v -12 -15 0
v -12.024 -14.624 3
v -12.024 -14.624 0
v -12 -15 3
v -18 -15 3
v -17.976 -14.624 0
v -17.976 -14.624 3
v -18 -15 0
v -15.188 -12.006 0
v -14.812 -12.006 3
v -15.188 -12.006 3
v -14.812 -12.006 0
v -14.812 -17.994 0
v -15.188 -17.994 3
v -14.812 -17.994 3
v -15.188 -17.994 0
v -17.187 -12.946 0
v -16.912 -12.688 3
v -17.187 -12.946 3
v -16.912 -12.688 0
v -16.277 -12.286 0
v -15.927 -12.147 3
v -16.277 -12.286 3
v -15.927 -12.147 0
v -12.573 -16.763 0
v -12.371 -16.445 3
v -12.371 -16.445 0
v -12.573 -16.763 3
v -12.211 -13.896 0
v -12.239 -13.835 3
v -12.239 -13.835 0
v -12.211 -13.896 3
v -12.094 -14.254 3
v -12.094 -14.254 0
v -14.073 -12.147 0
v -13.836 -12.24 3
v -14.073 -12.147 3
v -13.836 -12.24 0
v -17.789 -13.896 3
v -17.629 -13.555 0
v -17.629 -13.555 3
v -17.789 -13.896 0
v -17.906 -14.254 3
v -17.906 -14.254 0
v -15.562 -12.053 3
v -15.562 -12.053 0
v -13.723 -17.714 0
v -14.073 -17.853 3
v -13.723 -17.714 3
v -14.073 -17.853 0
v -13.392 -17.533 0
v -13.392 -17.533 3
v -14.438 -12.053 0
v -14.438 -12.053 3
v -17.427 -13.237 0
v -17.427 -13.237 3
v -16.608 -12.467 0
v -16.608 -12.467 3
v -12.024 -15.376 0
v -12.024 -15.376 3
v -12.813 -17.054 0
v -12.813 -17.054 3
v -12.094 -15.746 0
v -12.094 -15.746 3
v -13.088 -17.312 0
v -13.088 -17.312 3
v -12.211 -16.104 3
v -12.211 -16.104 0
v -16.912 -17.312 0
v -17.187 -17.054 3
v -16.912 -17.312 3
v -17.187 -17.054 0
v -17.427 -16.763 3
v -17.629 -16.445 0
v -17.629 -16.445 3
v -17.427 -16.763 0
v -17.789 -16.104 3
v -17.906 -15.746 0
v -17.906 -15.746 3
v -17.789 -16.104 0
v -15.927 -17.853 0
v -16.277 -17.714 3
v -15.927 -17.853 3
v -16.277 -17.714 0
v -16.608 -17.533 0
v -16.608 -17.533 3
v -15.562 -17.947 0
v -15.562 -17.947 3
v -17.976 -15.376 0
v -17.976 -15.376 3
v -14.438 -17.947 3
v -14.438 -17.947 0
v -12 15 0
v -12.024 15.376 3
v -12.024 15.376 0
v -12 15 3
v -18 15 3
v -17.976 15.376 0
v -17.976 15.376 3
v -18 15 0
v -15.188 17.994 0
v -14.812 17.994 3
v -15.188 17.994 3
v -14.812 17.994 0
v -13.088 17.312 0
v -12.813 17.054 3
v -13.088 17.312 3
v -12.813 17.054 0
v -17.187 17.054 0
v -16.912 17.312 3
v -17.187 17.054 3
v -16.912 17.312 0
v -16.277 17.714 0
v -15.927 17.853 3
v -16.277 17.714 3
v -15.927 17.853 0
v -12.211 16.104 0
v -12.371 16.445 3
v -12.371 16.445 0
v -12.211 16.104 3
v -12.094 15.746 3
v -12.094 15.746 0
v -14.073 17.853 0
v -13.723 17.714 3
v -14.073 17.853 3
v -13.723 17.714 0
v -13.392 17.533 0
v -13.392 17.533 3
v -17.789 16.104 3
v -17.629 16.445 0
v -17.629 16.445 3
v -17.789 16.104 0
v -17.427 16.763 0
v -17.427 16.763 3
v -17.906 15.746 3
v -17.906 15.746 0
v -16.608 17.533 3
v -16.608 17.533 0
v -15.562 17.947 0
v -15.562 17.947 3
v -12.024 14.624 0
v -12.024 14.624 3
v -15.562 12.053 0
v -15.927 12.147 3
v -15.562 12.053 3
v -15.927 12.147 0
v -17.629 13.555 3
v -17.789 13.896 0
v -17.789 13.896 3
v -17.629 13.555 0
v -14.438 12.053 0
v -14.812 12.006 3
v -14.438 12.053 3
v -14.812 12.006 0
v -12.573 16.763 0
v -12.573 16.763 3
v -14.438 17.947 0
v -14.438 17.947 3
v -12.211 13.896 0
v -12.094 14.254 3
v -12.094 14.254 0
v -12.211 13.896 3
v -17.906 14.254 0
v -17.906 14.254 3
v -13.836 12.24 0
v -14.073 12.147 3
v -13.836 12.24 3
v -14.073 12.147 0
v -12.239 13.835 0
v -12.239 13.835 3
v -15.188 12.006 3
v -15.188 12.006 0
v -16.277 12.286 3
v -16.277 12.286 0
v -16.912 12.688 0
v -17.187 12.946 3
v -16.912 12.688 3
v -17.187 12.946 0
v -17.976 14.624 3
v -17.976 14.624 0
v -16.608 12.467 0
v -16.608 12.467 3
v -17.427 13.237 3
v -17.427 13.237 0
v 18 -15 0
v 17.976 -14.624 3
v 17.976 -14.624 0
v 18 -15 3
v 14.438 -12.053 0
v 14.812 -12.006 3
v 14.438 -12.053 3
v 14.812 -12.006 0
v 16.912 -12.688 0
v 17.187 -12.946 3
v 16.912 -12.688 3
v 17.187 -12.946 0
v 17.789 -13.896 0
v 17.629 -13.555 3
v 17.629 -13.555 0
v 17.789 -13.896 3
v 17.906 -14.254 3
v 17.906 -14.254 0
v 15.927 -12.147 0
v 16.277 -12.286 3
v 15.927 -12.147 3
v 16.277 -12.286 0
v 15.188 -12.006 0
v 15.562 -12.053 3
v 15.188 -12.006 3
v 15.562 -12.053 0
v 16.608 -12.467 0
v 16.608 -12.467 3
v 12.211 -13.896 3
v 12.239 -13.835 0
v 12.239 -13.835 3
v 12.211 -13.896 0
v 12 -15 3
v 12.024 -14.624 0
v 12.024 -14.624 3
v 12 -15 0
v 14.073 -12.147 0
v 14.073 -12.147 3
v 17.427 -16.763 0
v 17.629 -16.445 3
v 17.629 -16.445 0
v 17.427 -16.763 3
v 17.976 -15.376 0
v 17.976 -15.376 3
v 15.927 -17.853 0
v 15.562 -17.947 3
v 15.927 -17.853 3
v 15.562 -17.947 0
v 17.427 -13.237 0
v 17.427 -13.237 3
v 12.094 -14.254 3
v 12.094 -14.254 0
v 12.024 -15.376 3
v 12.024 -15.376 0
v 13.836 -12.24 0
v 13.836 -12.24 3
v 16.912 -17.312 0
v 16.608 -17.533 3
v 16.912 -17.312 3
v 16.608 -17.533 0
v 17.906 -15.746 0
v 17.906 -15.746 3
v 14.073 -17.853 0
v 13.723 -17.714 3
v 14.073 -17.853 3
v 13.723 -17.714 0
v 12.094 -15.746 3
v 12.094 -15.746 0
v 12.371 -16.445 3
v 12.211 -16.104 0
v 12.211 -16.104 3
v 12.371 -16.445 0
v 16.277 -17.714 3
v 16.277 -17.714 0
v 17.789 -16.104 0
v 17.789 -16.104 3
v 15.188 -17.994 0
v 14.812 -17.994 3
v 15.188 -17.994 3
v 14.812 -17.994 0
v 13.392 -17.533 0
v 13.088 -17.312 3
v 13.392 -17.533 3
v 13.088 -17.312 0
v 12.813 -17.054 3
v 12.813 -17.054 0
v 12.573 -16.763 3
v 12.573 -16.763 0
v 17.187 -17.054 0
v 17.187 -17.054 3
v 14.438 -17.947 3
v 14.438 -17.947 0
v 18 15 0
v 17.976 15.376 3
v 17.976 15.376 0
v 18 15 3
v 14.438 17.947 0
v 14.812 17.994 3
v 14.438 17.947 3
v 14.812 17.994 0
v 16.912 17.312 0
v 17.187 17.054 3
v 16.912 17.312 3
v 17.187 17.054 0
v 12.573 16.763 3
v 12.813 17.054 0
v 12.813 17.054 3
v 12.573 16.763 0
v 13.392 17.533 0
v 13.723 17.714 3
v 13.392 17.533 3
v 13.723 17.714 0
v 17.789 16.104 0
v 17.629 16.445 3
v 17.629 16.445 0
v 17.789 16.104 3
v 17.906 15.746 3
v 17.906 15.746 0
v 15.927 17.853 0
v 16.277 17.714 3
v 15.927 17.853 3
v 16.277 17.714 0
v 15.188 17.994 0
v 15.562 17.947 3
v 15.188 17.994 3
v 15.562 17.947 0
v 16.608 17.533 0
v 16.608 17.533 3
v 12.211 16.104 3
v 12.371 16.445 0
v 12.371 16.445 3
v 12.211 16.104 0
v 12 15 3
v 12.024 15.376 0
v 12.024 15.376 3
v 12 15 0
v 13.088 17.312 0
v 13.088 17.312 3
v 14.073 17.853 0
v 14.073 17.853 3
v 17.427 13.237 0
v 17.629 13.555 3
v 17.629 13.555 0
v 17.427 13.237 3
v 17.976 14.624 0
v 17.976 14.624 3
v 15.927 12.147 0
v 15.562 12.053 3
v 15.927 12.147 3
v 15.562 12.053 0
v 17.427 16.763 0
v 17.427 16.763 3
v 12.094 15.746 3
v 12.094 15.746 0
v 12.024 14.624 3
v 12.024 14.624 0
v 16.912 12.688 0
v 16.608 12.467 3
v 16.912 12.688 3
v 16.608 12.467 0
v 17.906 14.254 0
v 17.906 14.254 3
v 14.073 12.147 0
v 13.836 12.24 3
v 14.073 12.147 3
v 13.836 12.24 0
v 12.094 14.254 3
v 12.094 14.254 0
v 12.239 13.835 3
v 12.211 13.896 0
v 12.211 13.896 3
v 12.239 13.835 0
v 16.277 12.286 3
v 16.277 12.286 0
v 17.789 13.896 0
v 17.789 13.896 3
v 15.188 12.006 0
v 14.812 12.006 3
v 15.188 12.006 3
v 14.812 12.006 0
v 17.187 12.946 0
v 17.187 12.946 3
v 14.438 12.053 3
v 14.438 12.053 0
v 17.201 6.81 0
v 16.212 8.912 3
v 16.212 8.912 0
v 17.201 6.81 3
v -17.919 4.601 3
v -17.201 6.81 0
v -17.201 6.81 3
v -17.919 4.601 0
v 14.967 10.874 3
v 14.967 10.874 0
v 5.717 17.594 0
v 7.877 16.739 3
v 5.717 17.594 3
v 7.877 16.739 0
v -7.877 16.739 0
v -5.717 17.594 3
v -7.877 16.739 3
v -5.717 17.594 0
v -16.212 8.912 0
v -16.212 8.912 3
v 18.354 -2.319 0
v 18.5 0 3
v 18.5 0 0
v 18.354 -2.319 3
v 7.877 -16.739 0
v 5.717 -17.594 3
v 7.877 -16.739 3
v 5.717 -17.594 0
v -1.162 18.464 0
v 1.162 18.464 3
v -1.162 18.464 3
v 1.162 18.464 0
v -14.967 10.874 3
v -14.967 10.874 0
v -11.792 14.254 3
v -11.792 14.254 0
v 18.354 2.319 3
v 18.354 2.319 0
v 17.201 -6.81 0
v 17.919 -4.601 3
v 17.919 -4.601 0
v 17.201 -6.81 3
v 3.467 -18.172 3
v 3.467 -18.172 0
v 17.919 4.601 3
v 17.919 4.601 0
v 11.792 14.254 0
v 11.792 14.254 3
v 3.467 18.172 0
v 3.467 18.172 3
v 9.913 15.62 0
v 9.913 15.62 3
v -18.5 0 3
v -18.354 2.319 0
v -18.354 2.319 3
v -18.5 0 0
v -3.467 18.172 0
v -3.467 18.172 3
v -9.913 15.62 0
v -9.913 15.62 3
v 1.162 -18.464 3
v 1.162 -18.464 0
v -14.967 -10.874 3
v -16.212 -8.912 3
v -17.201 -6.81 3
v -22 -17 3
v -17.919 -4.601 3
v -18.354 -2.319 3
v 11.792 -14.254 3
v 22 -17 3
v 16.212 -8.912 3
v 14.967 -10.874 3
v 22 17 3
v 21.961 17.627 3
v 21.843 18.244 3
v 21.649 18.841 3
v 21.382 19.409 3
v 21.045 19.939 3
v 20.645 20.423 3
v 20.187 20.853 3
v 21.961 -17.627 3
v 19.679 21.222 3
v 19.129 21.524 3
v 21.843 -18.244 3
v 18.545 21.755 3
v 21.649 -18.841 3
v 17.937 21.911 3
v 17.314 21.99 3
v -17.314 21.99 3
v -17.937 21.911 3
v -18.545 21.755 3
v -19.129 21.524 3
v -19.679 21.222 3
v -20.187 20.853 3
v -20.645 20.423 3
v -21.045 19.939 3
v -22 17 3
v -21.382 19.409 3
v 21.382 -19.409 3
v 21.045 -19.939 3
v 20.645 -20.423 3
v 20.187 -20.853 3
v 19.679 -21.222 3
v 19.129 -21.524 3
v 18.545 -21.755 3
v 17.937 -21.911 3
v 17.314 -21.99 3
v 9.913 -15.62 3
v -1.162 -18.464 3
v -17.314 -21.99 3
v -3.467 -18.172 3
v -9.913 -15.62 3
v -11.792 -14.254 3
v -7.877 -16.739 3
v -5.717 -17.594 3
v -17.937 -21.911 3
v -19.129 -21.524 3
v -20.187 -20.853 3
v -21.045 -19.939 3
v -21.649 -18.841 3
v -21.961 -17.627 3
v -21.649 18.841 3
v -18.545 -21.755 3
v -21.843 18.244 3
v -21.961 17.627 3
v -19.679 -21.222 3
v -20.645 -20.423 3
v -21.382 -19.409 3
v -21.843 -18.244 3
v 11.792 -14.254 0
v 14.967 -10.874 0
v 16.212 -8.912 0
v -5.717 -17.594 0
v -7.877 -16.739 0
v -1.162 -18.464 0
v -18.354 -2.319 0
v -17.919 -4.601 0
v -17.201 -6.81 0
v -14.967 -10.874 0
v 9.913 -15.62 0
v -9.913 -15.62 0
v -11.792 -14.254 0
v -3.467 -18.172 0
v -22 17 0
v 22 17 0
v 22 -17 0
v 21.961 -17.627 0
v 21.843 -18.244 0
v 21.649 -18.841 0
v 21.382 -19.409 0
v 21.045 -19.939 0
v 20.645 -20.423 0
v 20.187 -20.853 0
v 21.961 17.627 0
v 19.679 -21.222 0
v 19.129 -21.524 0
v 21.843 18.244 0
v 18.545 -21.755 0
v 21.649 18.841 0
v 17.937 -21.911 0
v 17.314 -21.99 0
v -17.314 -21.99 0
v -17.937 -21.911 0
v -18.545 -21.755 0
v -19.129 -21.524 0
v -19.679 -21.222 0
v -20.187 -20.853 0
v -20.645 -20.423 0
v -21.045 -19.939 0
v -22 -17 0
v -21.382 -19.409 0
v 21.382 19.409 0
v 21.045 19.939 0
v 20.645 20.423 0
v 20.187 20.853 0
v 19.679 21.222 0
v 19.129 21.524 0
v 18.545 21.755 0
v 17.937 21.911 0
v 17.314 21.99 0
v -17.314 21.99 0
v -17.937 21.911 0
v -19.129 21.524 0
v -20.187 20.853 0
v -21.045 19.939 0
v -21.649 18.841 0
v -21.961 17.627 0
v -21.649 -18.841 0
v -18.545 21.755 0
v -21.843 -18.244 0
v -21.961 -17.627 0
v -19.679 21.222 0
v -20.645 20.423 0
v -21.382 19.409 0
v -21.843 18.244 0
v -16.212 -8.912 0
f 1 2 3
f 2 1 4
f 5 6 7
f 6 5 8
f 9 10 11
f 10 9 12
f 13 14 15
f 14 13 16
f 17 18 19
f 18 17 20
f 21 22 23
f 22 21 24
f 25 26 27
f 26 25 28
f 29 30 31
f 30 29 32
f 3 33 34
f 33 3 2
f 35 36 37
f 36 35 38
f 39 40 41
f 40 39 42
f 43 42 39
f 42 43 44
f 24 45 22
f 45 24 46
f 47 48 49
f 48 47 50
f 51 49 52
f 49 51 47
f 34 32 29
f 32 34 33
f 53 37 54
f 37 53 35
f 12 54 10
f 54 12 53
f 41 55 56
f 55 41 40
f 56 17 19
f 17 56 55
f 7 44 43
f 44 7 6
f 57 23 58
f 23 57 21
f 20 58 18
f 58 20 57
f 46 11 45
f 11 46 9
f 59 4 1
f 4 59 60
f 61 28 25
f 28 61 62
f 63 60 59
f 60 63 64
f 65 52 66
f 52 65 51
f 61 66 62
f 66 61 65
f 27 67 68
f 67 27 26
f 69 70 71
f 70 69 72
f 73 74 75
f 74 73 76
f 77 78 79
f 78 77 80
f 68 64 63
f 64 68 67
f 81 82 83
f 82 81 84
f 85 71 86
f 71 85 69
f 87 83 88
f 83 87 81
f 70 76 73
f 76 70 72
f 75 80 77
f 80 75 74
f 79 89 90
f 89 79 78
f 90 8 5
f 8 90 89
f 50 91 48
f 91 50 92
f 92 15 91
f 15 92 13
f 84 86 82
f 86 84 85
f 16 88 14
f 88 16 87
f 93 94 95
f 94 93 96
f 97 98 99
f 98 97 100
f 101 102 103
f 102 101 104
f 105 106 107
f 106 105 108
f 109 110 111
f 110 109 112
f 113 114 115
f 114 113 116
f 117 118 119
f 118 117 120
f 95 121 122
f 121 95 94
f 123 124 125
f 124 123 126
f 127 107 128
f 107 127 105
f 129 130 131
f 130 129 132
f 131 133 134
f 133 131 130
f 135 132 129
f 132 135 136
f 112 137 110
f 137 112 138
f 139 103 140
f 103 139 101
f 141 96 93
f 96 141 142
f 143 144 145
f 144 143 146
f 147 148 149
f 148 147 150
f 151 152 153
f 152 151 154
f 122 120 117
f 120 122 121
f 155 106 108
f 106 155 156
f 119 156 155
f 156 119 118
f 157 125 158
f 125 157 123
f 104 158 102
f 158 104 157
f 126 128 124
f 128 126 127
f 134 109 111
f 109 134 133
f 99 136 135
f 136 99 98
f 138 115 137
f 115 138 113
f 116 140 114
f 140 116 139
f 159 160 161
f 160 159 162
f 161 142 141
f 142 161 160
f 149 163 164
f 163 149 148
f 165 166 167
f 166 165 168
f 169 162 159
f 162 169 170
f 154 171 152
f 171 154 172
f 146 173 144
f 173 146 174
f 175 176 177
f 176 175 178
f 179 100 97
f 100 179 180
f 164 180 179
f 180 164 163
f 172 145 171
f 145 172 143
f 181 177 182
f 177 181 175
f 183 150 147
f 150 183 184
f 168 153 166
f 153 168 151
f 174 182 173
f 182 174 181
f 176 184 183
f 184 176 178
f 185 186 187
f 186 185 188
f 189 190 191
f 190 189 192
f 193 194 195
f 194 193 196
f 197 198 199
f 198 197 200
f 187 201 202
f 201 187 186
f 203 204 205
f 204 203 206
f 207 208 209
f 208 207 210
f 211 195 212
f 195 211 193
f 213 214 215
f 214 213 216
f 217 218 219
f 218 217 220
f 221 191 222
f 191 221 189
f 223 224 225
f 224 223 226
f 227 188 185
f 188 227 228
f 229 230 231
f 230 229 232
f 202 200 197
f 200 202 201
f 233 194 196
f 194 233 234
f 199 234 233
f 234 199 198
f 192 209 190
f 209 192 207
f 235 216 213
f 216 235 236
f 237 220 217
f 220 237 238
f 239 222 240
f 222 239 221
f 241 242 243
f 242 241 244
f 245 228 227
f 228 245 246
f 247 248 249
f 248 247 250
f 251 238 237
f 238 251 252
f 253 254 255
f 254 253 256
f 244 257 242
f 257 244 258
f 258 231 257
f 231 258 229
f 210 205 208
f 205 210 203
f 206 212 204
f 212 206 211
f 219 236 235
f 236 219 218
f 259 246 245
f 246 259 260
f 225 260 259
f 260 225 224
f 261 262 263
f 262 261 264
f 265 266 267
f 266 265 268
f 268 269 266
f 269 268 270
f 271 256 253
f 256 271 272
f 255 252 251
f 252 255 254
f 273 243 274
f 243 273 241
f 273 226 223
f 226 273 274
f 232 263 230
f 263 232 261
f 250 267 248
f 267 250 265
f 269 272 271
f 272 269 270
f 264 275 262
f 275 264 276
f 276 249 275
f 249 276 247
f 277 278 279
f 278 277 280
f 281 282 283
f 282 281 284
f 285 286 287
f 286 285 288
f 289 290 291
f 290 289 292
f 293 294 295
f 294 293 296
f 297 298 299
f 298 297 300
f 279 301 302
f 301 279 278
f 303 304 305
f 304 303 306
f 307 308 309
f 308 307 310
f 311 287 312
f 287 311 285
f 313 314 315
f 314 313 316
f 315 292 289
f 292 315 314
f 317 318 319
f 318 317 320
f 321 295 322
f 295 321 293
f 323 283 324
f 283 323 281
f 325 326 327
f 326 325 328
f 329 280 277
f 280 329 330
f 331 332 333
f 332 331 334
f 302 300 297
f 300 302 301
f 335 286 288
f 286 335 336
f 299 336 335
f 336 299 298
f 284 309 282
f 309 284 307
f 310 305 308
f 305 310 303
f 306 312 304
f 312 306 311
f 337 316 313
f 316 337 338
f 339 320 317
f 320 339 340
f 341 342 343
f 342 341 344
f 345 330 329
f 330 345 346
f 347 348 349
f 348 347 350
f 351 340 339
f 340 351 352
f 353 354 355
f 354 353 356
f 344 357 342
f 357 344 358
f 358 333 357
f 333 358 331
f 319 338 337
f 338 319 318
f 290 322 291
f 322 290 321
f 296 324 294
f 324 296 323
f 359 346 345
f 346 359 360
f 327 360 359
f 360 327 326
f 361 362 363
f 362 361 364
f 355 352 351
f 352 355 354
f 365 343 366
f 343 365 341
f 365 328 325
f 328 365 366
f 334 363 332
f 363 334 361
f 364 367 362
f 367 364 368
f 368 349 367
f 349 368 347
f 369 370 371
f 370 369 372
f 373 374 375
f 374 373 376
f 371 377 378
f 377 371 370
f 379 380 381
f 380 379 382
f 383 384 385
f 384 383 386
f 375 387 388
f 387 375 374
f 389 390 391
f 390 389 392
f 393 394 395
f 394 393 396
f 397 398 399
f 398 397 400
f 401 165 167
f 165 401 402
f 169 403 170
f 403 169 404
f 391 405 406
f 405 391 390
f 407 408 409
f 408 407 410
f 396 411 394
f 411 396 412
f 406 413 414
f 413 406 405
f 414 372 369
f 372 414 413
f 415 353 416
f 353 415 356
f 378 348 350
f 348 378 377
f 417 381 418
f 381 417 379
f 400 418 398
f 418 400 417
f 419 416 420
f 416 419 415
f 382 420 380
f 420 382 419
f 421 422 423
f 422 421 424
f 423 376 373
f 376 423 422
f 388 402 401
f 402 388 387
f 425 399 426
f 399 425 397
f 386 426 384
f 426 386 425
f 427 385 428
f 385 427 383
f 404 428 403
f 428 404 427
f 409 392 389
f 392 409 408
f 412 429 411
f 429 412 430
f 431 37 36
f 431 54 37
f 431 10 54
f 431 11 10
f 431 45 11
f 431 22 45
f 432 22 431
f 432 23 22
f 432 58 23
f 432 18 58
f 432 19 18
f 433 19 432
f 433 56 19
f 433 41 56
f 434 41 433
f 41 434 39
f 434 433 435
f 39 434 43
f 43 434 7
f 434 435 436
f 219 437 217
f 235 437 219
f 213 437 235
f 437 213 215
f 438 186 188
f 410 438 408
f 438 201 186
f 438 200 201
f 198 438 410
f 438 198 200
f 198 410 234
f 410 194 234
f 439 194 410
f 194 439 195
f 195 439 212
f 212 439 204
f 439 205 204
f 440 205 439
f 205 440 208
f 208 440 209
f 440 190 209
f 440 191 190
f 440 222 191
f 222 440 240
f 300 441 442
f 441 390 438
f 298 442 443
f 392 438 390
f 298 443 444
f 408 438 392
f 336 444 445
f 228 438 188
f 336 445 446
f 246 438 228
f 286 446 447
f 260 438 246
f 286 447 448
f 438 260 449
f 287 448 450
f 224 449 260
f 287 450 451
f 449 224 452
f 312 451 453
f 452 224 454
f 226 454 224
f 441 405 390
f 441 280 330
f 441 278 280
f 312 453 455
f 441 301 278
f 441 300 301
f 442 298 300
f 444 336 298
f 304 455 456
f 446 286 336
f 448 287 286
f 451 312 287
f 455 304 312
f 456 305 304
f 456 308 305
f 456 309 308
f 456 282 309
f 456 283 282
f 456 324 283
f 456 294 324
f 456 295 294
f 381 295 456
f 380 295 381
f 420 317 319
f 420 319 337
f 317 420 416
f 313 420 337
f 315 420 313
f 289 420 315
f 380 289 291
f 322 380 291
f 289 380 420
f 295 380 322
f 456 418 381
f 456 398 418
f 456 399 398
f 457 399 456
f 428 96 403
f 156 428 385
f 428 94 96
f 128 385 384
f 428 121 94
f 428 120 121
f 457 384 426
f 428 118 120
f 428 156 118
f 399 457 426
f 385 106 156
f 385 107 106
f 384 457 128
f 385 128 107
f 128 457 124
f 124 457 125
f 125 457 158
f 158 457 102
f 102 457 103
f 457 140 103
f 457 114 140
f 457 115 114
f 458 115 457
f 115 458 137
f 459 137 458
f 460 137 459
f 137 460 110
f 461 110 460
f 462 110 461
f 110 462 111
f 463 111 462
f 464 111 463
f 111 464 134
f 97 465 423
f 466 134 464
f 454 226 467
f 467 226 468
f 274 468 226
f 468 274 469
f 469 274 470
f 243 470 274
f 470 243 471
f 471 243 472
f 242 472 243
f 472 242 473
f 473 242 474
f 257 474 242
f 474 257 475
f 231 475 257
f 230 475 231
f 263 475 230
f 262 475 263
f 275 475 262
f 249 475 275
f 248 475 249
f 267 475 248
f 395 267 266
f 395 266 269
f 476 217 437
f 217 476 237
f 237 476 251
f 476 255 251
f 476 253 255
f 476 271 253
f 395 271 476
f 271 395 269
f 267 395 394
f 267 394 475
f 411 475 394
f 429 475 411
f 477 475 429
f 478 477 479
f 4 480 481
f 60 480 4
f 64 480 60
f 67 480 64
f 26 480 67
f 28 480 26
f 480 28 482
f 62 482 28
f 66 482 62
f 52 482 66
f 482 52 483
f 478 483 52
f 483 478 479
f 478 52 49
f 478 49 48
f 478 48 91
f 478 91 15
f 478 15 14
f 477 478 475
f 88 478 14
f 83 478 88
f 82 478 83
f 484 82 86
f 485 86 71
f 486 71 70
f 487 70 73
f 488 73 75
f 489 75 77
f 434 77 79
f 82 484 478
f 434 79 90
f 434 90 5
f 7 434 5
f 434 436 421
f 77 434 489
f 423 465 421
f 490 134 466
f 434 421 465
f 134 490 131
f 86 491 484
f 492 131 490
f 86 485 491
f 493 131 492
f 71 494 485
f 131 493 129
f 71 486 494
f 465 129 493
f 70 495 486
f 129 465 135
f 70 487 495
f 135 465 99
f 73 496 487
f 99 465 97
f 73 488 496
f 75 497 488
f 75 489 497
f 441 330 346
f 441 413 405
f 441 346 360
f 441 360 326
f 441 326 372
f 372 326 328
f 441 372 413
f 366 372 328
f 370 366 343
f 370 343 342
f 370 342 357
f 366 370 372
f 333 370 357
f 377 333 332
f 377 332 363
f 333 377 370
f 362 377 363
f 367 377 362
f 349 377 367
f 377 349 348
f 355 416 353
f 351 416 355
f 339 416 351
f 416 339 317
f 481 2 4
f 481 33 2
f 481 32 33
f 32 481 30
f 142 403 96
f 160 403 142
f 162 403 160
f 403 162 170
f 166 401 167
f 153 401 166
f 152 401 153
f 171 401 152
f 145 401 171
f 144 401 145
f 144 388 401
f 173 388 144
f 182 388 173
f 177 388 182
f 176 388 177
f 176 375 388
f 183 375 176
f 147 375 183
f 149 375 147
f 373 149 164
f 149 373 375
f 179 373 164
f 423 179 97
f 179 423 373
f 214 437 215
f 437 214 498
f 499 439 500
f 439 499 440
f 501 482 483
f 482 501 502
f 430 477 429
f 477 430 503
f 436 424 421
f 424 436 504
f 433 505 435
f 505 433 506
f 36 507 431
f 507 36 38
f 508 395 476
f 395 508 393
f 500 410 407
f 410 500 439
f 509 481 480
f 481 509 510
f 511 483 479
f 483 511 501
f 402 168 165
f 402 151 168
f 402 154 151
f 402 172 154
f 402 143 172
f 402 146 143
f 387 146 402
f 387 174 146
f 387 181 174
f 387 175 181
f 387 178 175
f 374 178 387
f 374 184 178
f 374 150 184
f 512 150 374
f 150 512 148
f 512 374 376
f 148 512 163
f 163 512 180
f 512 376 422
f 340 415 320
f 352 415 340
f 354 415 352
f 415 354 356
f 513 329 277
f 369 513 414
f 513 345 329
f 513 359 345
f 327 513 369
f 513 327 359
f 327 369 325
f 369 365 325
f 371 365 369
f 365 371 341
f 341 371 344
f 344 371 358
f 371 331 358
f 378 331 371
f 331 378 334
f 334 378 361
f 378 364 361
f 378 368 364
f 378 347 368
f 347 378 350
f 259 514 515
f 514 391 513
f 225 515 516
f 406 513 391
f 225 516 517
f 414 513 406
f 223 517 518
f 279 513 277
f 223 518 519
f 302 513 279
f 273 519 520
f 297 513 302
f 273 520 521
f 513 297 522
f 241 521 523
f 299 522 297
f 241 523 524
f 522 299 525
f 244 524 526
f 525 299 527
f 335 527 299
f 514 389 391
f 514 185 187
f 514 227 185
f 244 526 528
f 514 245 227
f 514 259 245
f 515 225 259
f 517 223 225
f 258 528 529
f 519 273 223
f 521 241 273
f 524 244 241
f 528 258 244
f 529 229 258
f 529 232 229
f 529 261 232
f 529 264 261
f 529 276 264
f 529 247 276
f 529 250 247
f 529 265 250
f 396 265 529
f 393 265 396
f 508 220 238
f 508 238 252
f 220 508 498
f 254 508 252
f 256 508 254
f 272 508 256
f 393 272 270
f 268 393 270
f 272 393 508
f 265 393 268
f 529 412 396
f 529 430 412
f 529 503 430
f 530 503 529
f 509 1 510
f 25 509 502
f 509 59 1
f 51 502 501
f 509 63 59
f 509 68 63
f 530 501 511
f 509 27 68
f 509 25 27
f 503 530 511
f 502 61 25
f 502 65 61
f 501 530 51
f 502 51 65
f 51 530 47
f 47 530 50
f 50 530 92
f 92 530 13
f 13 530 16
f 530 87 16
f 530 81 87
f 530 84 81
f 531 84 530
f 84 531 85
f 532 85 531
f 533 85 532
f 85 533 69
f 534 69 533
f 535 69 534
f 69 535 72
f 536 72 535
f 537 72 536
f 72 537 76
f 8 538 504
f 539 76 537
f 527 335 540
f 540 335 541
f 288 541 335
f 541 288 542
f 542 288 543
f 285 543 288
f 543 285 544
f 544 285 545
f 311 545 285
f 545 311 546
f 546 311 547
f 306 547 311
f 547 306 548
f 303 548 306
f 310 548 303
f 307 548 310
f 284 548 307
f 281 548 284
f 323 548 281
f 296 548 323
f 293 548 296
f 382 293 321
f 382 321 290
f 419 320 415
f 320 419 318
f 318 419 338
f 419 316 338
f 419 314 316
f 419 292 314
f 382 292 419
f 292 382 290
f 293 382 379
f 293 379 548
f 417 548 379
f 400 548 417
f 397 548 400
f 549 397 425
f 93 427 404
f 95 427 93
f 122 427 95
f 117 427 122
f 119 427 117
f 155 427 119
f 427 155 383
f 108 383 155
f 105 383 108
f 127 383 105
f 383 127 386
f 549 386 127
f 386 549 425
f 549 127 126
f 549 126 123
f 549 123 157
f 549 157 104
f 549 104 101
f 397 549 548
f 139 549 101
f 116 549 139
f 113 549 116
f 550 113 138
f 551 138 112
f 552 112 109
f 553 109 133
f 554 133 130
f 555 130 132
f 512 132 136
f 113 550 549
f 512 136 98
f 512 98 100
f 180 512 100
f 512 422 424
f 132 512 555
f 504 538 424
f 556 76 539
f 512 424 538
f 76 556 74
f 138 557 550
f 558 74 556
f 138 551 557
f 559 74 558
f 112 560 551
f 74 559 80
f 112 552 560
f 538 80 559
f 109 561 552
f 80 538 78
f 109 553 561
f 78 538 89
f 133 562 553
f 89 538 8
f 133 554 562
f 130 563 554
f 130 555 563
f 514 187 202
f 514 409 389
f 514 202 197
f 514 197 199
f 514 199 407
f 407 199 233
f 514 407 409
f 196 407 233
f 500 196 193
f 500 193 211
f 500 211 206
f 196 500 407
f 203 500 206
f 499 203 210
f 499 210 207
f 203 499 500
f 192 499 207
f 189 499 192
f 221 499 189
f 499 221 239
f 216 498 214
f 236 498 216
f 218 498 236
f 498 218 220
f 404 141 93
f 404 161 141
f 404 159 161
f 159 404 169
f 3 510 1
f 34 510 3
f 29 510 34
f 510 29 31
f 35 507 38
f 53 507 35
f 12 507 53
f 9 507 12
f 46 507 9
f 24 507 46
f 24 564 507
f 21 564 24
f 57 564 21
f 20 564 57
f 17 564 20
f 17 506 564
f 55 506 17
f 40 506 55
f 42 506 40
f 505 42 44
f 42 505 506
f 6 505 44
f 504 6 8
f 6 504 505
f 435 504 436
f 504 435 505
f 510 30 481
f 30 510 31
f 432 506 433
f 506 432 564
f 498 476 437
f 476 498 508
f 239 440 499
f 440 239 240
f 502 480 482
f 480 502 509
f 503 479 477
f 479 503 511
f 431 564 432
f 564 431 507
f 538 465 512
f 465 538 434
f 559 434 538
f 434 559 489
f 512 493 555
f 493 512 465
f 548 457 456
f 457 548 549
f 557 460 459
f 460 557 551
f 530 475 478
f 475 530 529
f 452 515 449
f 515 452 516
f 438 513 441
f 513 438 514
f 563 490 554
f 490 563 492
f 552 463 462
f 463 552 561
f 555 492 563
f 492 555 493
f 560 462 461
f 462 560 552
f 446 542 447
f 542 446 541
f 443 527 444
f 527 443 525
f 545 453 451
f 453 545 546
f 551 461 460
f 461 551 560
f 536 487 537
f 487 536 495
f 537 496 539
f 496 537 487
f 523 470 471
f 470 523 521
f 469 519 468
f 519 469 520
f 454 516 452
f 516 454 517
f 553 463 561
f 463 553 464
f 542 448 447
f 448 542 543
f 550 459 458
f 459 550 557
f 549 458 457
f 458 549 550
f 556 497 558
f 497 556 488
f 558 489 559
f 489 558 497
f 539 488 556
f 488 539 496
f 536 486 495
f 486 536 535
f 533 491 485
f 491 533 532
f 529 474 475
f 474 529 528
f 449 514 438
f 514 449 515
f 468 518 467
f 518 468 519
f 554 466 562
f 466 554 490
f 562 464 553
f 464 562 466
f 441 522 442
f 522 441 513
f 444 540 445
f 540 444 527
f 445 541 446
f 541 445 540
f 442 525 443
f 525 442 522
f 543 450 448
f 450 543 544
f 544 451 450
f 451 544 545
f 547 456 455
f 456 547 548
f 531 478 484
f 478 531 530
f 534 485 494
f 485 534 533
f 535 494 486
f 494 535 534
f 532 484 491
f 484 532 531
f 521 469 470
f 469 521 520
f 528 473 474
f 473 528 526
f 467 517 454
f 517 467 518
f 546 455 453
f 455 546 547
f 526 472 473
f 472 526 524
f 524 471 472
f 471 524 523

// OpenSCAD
$fn = 50;


difference() {
	union() {
		hull() {
			translate(v = [-17.0000000000, 17.0000000000, 0]) {
				cylinder(h = 3, r = 5);
			}
			translate(v = [17.0000000000, 17.0000000000, 0]) {
				cylinder(h = 3, r = 5);
			}
			translate(v = [-17.0000000000, -17.0000000000, 0]) {
				cylinder(h = 3, r = 5);
			}
			translate(v = [17.0000000000, -17.0000000000, 0]) {
				cylinder(h = 3, r = 5);
			}
		}
	}
	union() {
		#translate(v = [-15.0000000000, -15.0000000000, -100.0000000000]) {
			cylinder(h = 200, r = 3.0000000000);
		}
		#translate(v = [-15.0000000000, 15.0000000000, -100.0000000000]) {
			cylinder(h = 200, r = 3.0000000000);
		}
		#translate(v = [15.0000000000, -15.0000000000, -100.0000000000]) {
			cylinder(h = 200, r = 3.0000000000);
		}
		#translate(v = [15.0000000000, 15.0000000000, -100.0000000000]) {
			cylinder(h = 200, r = 3.0000000000);
		}
		#cylinder(h = 3, r = 18.5000000000);
	}
}
